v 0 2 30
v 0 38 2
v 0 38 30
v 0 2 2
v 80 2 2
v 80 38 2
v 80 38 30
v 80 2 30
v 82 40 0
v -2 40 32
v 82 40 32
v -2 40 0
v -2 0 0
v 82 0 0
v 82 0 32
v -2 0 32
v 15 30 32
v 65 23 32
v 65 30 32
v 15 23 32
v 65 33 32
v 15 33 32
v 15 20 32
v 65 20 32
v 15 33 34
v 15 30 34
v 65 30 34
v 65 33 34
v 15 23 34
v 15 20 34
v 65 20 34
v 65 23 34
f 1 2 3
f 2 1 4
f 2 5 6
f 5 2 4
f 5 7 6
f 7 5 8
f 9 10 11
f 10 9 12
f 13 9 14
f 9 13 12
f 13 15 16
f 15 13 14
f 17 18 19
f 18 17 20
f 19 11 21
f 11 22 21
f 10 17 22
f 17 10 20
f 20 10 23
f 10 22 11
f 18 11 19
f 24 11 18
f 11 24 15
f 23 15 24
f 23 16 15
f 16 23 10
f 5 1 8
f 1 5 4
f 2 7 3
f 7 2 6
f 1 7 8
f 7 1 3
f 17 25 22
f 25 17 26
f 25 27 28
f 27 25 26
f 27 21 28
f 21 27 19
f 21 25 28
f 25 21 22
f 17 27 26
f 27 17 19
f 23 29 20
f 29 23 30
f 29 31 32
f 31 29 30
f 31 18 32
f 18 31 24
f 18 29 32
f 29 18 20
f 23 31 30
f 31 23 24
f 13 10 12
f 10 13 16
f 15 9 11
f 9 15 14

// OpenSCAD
// Base plate w/guide rods
difference() {
    union() {
        // Bottom 
        cube([80,40,2]);
    
        // Sides
        translate([0, 0, 2]) {
            color([1,0,0])
            cube([80,2,30]);
        }
         translate([0, 38, 2]) {
            color([1,0,0])
            cube([80,2,30]);
        }
        
        // Top
       translate([0,0,30]) {
       cube([80, 40, 2]);
       }
       
        // Bracket Holders
        translate([15,30,30]) {
            color([0,0,1])
            cube([50,3,4]);
        }
        translate([15,20,30]) {
            color([0,0,1])
            cube([50,3,4]);
        }
        
       // Ends
       translate([-2, 0, 0]) {
           color([0,1,0])
           cube([2,40,32]);
       }
       translate([80, 0, 0]) {
           color([0,1,0])
           cube([2,40,32]);
       }
    }
}
